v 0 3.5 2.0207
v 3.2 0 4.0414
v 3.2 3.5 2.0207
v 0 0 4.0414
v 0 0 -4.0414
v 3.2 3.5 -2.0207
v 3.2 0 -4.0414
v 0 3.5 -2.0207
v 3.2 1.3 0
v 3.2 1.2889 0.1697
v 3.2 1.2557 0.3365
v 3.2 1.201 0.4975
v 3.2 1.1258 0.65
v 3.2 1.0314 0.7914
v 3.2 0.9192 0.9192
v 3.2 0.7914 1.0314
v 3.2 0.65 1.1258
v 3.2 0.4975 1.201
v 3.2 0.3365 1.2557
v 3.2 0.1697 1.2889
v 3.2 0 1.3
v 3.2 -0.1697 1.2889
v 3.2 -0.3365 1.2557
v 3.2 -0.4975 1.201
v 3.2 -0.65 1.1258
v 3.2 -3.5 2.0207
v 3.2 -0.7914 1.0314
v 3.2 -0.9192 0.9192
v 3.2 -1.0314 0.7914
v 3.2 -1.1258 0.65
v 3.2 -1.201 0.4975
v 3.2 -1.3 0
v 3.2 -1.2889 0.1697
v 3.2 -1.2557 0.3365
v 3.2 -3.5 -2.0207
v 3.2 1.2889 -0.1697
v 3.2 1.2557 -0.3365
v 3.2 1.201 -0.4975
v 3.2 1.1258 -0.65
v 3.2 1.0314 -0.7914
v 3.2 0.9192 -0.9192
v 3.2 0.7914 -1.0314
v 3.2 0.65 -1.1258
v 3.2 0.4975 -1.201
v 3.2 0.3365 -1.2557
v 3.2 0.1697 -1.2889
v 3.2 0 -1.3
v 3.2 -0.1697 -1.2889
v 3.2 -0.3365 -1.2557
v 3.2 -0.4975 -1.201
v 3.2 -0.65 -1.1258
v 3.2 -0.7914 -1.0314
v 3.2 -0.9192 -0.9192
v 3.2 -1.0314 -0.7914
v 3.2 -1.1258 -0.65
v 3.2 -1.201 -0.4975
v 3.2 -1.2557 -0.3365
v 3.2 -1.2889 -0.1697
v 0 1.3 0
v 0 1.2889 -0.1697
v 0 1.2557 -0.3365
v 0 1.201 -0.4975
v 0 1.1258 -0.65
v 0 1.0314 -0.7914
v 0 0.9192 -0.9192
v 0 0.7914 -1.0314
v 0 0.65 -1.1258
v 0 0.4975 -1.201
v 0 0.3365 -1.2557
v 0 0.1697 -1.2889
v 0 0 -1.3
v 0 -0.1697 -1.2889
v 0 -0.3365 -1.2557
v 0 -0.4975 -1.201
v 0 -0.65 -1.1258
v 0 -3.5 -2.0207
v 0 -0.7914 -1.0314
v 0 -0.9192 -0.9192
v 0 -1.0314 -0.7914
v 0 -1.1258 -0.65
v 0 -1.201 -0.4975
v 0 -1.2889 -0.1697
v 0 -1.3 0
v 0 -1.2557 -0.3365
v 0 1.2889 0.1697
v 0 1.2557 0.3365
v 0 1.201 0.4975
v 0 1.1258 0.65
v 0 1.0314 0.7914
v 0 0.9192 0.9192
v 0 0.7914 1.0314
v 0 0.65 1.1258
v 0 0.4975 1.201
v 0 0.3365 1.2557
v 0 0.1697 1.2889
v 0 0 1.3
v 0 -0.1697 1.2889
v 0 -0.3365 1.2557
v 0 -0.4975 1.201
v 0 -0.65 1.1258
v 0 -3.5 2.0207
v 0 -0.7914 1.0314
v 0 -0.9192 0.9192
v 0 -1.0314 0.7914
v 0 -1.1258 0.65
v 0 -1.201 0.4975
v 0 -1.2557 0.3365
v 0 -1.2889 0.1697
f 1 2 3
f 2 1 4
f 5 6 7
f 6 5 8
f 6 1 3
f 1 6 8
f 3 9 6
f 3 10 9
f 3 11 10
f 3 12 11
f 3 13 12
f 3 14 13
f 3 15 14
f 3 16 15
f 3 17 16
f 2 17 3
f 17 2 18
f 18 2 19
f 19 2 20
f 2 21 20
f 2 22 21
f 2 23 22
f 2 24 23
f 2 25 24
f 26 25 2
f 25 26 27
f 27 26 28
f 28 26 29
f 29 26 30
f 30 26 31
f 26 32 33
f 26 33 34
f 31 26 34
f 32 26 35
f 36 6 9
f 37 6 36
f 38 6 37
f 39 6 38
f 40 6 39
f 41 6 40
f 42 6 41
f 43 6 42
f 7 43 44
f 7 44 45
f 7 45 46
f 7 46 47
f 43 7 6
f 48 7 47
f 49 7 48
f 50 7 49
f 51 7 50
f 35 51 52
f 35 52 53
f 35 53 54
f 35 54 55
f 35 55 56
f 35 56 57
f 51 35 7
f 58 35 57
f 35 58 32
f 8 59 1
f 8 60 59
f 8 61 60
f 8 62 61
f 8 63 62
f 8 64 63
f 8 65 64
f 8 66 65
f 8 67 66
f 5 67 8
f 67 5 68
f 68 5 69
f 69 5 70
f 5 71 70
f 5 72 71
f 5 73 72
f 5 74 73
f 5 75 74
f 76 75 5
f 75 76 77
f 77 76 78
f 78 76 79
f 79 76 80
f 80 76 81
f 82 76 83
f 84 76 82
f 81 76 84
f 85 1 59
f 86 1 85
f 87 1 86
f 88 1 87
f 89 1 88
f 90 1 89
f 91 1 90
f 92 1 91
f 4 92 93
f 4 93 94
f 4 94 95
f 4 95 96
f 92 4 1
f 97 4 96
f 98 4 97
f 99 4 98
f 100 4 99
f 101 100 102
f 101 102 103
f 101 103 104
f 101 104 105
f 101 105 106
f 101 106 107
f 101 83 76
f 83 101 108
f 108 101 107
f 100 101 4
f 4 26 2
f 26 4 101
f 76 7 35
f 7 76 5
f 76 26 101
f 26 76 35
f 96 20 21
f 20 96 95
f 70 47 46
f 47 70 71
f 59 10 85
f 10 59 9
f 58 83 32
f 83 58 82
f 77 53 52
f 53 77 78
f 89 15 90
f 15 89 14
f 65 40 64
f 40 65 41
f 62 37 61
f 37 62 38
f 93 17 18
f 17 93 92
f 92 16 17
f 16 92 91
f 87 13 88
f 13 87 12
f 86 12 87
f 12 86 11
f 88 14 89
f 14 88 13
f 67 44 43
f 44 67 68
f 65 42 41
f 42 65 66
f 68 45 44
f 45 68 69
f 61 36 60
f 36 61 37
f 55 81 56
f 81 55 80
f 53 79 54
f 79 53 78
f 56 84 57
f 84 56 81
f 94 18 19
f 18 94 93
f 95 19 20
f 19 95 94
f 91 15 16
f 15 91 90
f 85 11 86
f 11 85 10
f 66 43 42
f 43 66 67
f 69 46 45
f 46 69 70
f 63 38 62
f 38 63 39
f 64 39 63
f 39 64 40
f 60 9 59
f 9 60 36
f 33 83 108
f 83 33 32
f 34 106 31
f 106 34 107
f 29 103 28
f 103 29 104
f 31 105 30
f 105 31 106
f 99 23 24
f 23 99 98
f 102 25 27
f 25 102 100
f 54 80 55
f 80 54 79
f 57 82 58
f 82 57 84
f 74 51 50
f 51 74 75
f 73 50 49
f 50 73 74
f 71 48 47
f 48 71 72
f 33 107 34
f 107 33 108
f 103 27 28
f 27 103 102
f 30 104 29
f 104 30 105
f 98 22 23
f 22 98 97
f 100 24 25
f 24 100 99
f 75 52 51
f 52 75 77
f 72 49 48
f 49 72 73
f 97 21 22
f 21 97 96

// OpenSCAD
// file: ../../../lib/nutsnbolts/data-access.scad
// Norm Nuts and Bolts - a OpenSCAD library
// Copyright (C) 2012  Johannes Kneer

// This program is free software: you can redistribute it and/or modify
// it under the terms of the GNU General Public License as published by
// the Free Software Foundation, either version 3 of the License, or
// (at your option) any later version.

// This program is distributed in the hope that it will be useful,
// but WITHOUT ANY WARRANTY; without even the implied warranty of
// MERCHANTABILITY or FITNESS FOR A PARTICULAR PURPOSE.  See the
// GNU General Public License for more details.

// You should have received a copy of the GNU General Public License
// along with this program.  If not, see <http://www.gnu.org/licenses/>.


// DATABASE ACCESS FUNCTIONS AND CONSTANTS



// == CONSTANTS ==

// screw table access keys
_NB_S_DESC            = 0;
_NB_S_FAMKEY			    = 1;
_NB_S_LENGTH          = 2;
_NB_S_NOTHREAD_LENGTH = 3;

_NB_F_DESC			      = 0;
_NB_F_OUTER_DIA       = 1;
_NB_F_INNER_DIA       = 2;
_NB_F_LEAD            = 3;
_NB_F_KEY             = 4;
_NB_F_KEY_DEPTH       = 5;
_NB_F_HEAD_HEIGHT     = 6;
_NB_F_HEAD_DIA        = 7;
_NB_F_NUT_KEY         = 8;
_NB_F_NUT_HEIGHT      = 9;
_NB_F_PITCH_FINE      = 10;
_NB_F_PITCH_MEDIUM    = 11;
_NB_F_PITCH_COARSE    = 12;


// == FUNCTIONS ==

// _get_screw("descriptor")   with descriptor = M8x25
//   find the line for a general object in the data matrix

function _get_screw(n) = data_screw[search([n], data_screw)[0]];
function _get_screw_fam(n) = data_screw_fam[search([_get_screw(n)[_NB_S_FAMKEY]], data_screw_fam)[0]];

function _get_fam(n) = data_screw_fam[search([n], data_screw_fam)[0]];


// _get_XXXXX("descriptor") functions
// find a single property in the database

function _get_desc(n)        = _get_screw(n)[_NB_S_DESC];
function _get_famkey(n)         = _get_screw(n)[_NB_S_FAMKEY];
function _get_length(n)      = _get_screw(n)[_NB_S_LENGTH];
function _get_nt_length(n)   = _get_screw(n)[_NB_S_NOTHREAD_LENGTH];

function _get_outer_dia(n)   = _get_screw_fam(n)[_NB_F_OUTER_DIA];
function _get_inner_dia(n)   = _get_screw_fam(n)[_NB_F_INNER_DIA];
function _get_lead(n)        = _get_screw_fam(n)[_NB_F_LEAD];
function _get_head_height(n) = _get_screw_fam(n)[_NB_F_HEAD_HEIGHT];
function _get_head_dia(n)    = _get_screw_fam(n)[_NB_F_HEAD_DIA];
function _get_nut_key(n)     = _get_screw_fam(n)[_NB_F_NUT_KEY];
function _get_nut_height(n)  = _get_screw_fam(n)[_NB_F_NUT_HEIGHT];
function _get_fine_pitch(n)  = _get_screw_fam(n)[_NB_F_PITCH_FINE];
function _get_medium_pitch(n)  = _get_screw_fam(n)[_NB_F_PITCH_MEDIUM];
function _get_coarse_pitch(n)  = _get_screw_fam(n)[_NB_F_PITCH_COARSE];
// main file
/**********************************************************************************************************************
 **
 ** parts/vitamins/nut_M4.scad
 **
 ** This file renders a nut of the dimensions specified by the file name.
 **
 **********************************************************************************************************************/

include <../../../lib/nutsnbolts/cyl_head_bolt.scad>;

$fn = 48;
rotate([0, -90, 0])
	nut("M4"); 
